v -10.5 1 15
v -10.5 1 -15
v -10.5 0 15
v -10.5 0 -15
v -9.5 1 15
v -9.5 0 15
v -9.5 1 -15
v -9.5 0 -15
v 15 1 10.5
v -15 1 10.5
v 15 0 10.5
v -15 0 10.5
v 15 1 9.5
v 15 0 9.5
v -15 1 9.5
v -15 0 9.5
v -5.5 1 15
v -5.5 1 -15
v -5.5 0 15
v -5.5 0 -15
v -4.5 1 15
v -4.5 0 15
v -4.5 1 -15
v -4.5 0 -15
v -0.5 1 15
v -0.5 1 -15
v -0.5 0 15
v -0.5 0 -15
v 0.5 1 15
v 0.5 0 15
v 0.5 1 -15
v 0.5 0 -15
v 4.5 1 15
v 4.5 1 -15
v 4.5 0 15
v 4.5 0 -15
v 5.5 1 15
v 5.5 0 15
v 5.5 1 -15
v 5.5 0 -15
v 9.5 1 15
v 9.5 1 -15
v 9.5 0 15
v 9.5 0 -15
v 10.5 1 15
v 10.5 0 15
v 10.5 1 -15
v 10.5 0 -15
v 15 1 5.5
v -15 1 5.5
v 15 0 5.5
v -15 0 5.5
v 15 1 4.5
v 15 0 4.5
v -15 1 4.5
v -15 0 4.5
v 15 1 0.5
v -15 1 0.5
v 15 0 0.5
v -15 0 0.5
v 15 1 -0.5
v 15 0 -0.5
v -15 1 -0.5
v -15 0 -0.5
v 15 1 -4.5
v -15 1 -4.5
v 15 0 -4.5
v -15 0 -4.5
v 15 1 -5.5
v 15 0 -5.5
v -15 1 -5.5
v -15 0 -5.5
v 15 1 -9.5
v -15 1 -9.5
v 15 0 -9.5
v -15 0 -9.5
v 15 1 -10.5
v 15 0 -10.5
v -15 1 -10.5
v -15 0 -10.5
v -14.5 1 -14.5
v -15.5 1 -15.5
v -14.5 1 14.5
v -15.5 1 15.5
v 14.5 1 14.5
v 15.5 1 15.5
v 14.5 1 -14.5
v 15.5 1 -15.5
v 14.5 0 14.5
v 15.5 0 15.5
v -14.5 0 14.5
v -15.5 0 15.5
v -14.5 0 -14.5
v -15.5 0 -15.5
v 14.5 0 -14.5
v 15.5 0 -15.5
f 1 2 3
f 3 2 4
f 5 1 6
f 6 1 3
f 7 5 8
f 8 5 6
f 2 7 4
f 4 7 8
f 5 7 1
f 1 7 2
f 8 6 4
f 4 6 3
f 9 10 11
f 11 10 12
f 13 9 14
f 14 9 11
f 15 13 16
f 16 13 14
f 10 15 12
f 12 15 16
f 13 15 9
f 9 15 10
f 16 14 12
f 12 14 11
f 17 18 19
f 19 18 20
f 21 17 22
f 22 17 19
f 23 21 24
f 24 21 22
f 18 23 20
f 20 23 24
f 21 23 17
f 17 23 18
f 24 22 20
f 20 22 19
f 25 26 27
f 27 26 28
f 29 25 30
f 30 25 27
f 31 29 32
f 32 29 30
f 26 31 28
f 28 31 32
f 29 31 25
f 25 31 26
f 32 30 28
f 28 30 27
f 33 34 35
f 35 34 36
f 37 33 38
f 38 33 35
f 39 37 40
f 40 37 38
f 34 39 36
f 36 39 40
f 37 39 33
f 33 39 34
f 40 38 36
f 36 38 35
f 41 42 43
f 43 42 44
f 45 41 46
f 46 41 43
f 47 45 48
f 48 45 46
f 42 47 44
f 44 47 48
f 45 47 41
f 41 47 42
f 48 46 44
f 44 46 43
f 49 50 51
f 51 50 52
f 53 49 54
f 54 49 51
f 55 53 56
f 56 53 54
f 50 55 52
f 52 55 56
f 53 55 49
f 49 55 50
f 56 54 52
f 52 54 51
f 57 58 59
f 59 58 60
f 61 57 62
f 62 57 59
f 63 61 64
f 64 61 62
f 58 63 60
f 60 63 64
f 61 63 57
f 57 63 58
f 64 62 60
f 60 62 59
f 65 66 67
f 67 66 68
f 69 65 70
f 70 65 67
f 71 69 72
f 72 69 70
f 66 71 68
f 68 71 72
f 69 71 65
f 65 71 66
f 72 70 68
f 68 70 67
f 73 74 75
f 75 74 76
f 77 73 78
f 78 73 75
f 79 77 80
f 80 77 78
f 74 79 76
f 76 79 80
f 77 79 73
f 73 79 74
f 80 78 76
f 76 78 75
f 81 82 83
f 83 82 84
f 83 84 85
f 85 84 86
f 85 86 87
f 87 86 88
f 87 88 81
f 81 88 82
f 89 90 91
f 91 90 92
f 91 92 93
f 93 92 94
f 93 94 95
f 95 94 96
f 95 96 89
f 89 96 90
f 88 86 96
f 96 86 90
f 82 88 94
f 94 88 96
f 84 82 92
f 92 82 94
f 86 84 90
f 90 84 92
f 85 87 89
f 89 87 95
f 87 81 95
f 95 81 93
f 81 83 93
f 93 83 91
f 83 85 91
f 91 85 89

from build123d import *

# Parameters (mm, degrees)
SKETCH1_W              = 1
SKETCH1_H              = 30
EXTRUDE_THIN1_DEPTH    = 1
SKETCH1_W_2            = 31
SKETCH1_H_2            = 31
SKETCH1_W_3            = 29
SKETCH1_H_3            = 29
EXTRUDE_THIN1_2_DEPTH  = 1
EXTRUDE_THIN1_3_DEPTH  = 1
EXTRUDE_THIN1_4_DEPTH  = 1
EXTRUDE_THIN1_5_DEPTH  = 1
EXTRUDE_THIN1_6_DEPTH  = 1
SKETCH1_W_4            = 30
SKETCH1_H_4            = 1
EXTRUDE_THIN1_7_DEPTH  = 1
EXTRUDE_THIN1_8_DEPTH  = 1
EXTRUDE_THIN1_9_DEPTH  = 1
EXTRUDE_THIN1_10_DEPTH = 1
EXTRUDE_THIN1_11_DEPTH = 1


with BuildPart() as part:
    # Sketch1 → Extrude-Thin1 (new body)
    with BuildSketch(Plane(origin=(0, 0, 0), x_dir=(1, 0, 0), z_dir=(0, 1, 0))):
        with Locations((-10, 0)):
            Rectangle(SKETCH1_W, SKETCH1_H)
    extrude(amount=EXTRUDE_THIN1_DEPTH)


with BuildPart() as body_2:
    # Sketch1 → Extrude-Thin1 2 (new body)
    with BuildSketch(Plane(origin=(0, 0, 0), x_dir=(1, 0, 0), z_dir=(0, 1, 0))):
        Rectangle(SKETCH1_W_2, SKETCH1_H_2)
        Rectangle(SKETCH1_W_3, SKETCH1_H_3, mode=Mode.SUBTRACT)
    extrude(amount=EXTRUDE_THIN1_2_DEPTH)


with BuildPart() as body_3:
    # Sketch1 → Extrude-Thin1 3 (new body)
    with BuildSketch(Plane(origin=(0, 0, 0), x_dir=(1, 0, 0), z_dir=(0, 1, 0))):
        with Locations((-5, 0)):
            Rectangle(SKETCH1_W, SKETCH1_H)
    extrude(amount=EXTRUDE_THIN1_3_DEPTH)


with BuildPart() as body_4:
    # Sketch1 → Extrude-Thin1 4 (new body)
    with BuildSketch(Plane(origin=(0, 0, 0), x_dir=(1, 0, 0), z_dir=(0, 1, 0))):
        Rectangle(SKETCH1_W, SKETCH1_H)
    extrude(amount=EXTRUDE_THIN1_4_DEPTH)


with BuildPart() as body_5:
    # Sketch1 → Extrude-Thin1 5 (new body)
    with BuildSketch(Plane(origin=(0, 0, 0), x_dir=(1, 0, 0), z_dir=(0, 1, 0))):
        with Locations((5, 0)):
            Rectangle(SKETCH1_W, SKETCH1_H)
    extrude(amount=EXTRUDE_THIN1_5_DEPTH)


with BuildPart() as body_6:
    # Sketch1 → Extrude-Thin1 6 (new body)
    with BuildSketch(Plane(origin=(0, 0, 0), x_dir=(1, 0, 0), z_dir=(0, 1, 0))):
        with Locations((10, 0)):
            Rectangle(SKETCH1_W, SKETCH1_H)
    extrude(amount=EXTRUDE_THIN1_6_DEPTH)


with BuildPart() as body_7:
    # Sketch1 → Extrude-Thin1 7 (new body)
    with BuildSketch(Plane(origin=(0, 0, 0), x_dir=(1, 0, 0), z_dir=(0, 1, 0))):
        with Locations((0, -10)):
            Rectangle(SKETCH1_W_4, SKETCH1_H_4)
    extrude(amount=EXTRUDE_THIN1_7_DEPTH)


with BuildPart() as body_8:
    # Sketch1 → Extrude-Thin1 8 (new body)
    with BuildSketch(Plane(origin=(0, 0, 0), x_dir=(1, 0, 0), z_dir=(0, 1, 0))):
        with Locations((0, -5)):
            Rectangle(SKETCH1_W_4, SKETCH1_H_4)
    extrude(amount=EXTRUDE_THIN1_8_DEPTH)


with BuildPart() as body_9:
    # Sketch1 → Extrude-Thin1 9 (new body)
    with BuildSketch(Plane(origin=(0, 0, 0), x_dir=(1, 0, 0), z_dir=(0, 1, 0))):
        Rectangle(SKETCH1_W_4, SKETCH1_H_4)
    extrude(amount=EXTRUDE_THIN1_9_DEPTH)


with BuildPart() as body_10:
    # Sketch1 → Extrude-Thin1 10 (new body)
    with BuildSketch(Plane(origin=(0, 0, 0), x_dir=(1, 0, 0), z_dir=(0, 1, 0))):
        with Locations((0, 5)):
            Rectangle(SKETCH1_W_4, SKETCH1_H_4)
    extrude(amount=EXTRUDE_THIN1_10_DEPTH)


with BuildPart() as body_11:
    # Sketch1 → Extrude-Thin1 11 (new body)
    with BuildSketch(Plane(origin=(0, 0, 0), x_dir=(1, 0, 0), z_dir=(0, 1, 0))):
        with Locations((0, 10)):
            Rectangle(SKETCH1_W_4, SKETCH1_H_4)
    extrude(amount=EXTRUDE_THIN1_11_DEPTH)


solid = Compound([part.part, body_2.part, body_3.part, body_4.part, body_5.part, body_6.part, body_7.part, body_8.part, body_9.part, body_10.part, body_11.part])
